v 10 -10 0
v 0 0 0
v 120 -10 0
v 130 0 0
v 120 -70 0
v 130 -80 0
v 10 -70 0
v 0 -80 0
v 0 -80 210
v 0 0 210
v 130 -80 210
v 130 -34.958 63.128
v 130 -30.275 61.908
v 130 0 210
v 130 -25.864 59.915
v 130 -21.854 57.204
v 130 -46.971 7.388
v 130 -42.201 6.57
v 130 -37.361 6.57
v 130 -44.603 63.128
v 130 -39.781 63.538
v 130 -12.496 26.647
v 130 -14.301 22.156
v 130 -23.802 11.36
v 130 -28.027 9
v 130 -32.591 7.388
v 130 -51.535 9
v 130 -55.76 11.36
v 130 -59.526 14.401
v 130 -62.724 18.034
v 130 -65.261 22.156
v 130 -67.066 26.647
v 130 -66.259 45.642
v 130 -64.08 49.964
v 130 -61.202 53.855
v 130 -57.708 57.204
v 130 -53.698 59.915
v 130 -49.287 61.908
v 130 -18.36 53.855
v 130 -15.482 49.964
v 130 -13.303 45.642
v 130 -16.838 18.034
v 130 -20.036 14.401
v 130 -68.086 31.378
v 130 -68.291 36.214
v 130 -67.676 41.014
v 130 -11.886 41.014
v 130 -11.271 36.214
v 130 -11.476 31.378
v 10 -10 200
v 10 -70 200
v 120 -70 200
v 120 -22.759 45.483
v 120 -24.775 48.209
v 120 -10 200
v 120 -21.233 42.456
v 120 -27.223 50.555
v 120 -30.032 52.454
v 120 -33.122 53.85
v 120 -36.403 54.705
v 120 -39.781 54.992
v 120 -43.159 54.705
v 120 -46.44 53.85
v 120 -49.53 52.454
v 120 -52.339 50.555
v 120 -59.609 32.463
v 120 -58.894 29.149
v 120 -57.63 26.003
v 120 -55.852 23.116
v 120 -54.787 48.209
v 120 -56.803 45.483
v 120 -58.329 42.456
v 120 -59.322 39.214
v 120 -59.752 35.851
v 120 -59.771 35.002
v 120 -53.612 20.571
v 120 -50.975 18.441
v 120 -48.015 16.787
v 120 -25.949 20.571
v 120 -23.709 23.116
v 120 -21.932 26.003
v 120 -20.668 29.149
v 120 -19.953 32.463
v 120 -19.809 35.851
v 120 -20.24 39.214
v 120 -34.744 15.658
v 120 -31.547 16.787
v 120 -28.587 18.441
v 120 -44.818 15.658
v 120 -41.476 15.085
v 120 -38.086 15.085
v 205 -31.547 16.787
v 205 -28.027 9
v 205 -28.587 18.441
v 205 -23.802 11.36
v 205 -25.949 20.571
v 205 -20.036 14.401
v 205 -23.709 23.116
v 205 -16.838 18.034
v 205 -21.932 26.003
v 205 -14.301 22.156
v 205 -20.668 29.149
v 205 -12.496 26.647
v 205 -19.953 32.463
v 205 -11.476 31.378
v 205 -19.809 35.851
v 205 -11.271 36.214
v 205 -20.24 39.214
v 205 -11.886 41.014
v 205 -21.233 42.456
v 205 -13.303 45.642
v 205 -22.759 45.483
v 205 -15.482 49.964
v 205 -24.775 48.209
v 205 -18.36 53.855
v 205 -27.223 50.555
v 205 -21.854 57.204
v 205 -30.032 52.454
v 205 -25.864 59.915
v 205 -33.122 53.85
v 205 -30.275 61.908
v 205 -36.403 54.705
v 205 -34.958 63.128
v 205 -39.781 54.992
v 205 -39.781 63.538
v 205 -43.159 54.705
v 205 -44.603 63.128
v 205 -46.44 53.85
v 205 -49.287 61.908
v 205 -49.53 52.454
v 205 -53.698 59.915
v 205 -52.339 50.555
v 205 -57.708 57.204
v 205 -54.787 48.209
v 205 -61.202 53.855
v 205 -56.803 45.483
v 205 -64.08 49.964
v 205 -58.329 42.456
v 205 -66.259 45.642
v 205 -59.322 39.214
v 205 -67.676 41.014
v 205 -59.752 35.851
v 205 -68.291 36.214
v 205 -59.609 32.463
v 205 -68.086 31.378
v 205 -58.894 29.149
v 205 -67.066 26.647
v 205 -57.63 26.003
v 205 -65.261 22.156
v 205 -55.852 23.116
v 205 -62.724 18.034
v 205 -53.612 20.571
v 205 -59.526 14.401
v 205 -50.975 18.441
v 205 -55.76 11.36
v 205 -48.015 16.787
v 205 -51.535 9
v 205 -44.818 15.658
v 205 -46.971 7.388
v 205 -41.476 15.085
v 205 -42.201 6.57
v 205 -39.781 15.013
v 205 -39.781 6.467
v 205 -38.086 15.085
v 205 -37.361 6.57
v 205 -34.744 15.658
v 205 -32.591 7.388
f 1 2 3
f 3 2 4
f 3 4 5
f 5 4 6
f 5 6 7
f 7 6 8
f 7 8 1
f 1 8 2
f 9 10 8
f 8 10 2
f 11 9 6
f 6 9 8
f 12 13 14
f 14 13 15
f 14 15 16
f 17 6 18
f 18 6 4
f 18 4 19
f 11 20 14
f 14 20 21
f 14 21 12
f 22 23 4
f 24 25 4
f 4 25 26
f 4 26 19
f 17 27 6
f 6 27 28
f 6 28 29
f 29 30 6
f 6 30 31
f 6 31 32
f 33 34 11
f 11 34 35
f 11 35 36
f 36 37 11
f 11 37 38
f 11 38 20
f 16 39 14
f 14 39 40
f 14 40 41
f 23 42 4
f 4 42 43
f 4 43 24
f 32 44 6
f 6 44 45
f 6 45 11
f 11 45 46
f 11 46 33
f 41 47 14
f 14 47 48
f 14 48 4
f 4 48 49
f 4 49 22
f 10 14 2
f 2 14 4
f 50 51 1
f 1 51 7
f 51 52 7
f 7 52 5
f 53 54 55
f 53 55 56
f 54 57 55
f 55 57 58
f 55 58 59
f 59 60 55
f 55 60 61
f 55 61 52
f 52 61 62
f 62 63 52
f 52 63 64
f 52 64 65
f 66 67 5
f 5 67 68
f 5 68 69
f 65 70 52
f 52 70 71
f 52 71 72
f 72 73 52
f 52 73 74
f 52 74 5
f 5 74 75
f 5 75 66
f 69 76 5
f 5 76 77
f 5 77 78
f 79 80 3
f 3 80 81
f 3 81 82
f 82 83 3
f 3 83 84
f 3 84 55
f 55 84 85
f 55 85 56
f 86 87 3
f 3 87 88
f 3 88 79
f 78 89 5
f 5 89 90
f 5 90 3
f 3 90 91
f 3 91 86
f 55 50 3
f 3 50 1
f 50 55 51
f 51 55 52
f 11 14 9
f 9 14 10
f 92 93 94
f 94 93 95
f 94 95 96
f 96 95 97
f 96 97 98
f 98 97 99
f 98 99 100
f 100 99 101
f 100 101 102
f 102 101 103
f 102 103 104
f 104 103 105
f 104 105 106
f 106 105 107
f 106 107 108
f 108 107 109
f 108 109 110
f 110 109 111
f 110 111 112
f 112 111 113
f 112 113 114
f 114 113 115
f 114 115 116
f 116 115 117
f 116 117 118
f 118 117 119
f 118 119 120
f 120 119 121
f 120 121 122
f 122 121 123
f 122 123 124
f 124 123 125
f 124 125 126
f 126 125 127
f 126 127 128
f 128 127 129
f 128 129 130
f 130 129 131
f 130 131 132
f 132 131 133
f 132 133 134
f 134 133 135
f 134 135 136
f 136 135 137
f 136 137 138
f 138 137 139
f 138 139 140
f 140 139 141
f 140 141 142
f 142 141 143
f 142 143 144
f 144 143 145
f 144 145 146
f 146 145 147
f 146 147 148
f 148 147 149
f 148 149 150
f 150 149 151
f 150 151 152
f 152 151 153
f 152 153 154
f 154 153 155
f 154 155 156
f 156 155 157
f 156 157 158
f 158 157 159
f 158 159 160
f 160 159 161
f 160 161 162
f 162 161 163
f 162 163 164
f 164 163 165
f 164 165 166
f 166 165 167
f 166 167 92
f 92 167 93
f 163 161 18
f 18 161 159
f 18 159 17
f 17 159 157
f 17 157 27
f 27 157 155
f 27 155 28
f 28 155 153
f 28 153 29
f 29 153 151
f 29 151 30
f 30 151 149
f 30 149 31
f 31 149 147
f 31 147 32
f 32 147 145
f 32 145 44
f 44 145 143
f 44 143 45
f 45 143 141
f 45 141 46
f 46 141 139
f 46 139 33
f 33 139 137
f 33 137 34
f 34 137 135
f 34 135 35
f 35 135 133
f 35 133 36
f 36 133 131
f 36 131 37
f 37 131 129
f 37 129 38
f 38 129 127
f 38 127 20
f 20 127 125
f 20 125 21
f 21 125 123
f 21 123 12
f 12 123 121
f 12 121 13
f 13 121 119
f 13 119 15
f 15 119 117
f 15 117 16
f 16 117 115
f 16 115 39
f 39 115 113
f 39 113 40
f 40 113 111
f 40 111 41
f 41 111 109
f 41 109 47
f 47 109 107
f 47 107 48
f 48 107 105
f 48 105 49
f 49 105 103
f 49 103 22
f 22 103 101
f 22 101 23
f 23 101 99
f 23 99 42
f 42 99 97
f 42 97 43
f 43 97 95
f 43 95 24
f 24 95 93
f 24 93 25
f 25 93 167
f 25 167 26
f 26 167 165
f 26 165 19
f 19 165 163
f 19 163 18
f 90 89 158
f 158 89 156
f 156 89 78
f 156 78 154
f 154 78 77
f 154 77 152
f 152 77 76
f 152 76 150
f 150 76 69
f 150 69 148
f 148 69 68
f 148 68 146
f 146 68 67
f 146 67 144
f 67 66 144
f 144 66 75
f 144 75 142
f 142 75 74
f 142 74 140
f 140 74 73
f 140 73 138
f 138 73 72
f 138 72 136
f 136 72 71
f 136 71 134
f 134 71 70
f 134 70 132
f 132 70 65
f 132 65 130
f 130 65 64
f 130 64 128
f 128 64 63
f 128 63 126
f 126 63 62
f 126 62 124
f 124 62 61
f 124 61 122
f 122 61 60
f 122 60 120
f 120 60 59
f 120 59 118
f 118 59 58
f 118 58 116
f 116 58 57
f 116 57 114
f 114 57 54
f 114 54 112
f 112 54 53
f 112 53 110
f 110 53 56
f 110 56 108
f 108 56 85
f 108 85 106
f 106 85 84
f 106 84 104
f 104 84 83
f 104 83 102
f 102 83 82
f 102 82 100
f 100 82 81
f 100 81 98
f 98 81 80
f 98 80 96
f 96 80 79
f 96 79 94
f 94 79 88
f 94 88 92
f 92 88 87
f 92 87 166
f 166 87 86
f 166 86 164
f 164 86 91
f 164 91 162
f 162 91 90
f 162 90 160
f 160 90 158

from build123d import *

# Parameters (mm, degrees)
SKETCH1_W           = 130
SKETCH1_H           = 80
SKETCH1_W_2         = 110
SKETCH1_H_2         = 60
BOSS_EXTRUDE2_DEPTH = 200
SKETCH4_W           = 130
SKETCH4_H           = 80
BOSS_EXTRUDE3_DEPTH = 10
SKETCH6_R           = 28.535717896
SKETCH6_R_2         = 19.989594855
BOSS_EXTRUDE5_DEPTH = 75
CUT_EXTRUDE1_START  = -75
SKETCH6_3_R         = 19.989594855
CUT_EXTRUDE1_DEPTH  = 75


with BuildPart() as part:
    # Sketch1 → Boss-Extrude2 (new body)
    with BuildSketch(Plane.XY):
        with Locations((65, -40)):
            Rectangle(SKETCH1_W, SKETCH1_H)
        with Locations((65, -40)):
            Rectangle(SKETCH1_W_2, SKETCH1_H_2, mode=Mode.SUBTRACT)
    extrude(amount=BOSS_EXTRUDE2_DEPTH)

    # Sketch4 → Boss-Extrude3 (add)
    with BuildSketch(Plane.XY.offset(200)):
        with Locations((65, -40)):
            Rectangle(SKETCH4_W, SKETCH4_H)
    extrude(amount=BOSS_EXTRUDE3_DEPTH)

    # Sketch6 → Boss-Extrude5 (add)
    with BuildSketch(Plane(origin=(130, 0, 0), x_dir=(0, 0, -1), z_dir=(1, 0, 0))):
        with Locations((-35.002467087, -39.78091539)):
            Circle(SKETCH6_R)
        with Locations((-35.002467087, -39.78091539)):
            Circle(SKETCH6_R_2, mode=Mode.SUBTRACT)
    extrude(amount=BOSS_EXTRUDE5_DEPTH)

    # Sketch6<3> → Cut-Extrude1 (cut)
    with BuildSketch(Plane(origin=(130, 0, 0), x_dir=(0, 0, -1), z_dir=(1, 0, 0)).offset(CUT_EXTRUDE1_START)):
        with Locations((-35.002467087, -39.78091539)):
            Circle(SKETCH6_3_R)
    extrude(amount=CUT_EXTRUDE1_DEPTH, mode=Mode.SUBTRACT)


solid = part.part
